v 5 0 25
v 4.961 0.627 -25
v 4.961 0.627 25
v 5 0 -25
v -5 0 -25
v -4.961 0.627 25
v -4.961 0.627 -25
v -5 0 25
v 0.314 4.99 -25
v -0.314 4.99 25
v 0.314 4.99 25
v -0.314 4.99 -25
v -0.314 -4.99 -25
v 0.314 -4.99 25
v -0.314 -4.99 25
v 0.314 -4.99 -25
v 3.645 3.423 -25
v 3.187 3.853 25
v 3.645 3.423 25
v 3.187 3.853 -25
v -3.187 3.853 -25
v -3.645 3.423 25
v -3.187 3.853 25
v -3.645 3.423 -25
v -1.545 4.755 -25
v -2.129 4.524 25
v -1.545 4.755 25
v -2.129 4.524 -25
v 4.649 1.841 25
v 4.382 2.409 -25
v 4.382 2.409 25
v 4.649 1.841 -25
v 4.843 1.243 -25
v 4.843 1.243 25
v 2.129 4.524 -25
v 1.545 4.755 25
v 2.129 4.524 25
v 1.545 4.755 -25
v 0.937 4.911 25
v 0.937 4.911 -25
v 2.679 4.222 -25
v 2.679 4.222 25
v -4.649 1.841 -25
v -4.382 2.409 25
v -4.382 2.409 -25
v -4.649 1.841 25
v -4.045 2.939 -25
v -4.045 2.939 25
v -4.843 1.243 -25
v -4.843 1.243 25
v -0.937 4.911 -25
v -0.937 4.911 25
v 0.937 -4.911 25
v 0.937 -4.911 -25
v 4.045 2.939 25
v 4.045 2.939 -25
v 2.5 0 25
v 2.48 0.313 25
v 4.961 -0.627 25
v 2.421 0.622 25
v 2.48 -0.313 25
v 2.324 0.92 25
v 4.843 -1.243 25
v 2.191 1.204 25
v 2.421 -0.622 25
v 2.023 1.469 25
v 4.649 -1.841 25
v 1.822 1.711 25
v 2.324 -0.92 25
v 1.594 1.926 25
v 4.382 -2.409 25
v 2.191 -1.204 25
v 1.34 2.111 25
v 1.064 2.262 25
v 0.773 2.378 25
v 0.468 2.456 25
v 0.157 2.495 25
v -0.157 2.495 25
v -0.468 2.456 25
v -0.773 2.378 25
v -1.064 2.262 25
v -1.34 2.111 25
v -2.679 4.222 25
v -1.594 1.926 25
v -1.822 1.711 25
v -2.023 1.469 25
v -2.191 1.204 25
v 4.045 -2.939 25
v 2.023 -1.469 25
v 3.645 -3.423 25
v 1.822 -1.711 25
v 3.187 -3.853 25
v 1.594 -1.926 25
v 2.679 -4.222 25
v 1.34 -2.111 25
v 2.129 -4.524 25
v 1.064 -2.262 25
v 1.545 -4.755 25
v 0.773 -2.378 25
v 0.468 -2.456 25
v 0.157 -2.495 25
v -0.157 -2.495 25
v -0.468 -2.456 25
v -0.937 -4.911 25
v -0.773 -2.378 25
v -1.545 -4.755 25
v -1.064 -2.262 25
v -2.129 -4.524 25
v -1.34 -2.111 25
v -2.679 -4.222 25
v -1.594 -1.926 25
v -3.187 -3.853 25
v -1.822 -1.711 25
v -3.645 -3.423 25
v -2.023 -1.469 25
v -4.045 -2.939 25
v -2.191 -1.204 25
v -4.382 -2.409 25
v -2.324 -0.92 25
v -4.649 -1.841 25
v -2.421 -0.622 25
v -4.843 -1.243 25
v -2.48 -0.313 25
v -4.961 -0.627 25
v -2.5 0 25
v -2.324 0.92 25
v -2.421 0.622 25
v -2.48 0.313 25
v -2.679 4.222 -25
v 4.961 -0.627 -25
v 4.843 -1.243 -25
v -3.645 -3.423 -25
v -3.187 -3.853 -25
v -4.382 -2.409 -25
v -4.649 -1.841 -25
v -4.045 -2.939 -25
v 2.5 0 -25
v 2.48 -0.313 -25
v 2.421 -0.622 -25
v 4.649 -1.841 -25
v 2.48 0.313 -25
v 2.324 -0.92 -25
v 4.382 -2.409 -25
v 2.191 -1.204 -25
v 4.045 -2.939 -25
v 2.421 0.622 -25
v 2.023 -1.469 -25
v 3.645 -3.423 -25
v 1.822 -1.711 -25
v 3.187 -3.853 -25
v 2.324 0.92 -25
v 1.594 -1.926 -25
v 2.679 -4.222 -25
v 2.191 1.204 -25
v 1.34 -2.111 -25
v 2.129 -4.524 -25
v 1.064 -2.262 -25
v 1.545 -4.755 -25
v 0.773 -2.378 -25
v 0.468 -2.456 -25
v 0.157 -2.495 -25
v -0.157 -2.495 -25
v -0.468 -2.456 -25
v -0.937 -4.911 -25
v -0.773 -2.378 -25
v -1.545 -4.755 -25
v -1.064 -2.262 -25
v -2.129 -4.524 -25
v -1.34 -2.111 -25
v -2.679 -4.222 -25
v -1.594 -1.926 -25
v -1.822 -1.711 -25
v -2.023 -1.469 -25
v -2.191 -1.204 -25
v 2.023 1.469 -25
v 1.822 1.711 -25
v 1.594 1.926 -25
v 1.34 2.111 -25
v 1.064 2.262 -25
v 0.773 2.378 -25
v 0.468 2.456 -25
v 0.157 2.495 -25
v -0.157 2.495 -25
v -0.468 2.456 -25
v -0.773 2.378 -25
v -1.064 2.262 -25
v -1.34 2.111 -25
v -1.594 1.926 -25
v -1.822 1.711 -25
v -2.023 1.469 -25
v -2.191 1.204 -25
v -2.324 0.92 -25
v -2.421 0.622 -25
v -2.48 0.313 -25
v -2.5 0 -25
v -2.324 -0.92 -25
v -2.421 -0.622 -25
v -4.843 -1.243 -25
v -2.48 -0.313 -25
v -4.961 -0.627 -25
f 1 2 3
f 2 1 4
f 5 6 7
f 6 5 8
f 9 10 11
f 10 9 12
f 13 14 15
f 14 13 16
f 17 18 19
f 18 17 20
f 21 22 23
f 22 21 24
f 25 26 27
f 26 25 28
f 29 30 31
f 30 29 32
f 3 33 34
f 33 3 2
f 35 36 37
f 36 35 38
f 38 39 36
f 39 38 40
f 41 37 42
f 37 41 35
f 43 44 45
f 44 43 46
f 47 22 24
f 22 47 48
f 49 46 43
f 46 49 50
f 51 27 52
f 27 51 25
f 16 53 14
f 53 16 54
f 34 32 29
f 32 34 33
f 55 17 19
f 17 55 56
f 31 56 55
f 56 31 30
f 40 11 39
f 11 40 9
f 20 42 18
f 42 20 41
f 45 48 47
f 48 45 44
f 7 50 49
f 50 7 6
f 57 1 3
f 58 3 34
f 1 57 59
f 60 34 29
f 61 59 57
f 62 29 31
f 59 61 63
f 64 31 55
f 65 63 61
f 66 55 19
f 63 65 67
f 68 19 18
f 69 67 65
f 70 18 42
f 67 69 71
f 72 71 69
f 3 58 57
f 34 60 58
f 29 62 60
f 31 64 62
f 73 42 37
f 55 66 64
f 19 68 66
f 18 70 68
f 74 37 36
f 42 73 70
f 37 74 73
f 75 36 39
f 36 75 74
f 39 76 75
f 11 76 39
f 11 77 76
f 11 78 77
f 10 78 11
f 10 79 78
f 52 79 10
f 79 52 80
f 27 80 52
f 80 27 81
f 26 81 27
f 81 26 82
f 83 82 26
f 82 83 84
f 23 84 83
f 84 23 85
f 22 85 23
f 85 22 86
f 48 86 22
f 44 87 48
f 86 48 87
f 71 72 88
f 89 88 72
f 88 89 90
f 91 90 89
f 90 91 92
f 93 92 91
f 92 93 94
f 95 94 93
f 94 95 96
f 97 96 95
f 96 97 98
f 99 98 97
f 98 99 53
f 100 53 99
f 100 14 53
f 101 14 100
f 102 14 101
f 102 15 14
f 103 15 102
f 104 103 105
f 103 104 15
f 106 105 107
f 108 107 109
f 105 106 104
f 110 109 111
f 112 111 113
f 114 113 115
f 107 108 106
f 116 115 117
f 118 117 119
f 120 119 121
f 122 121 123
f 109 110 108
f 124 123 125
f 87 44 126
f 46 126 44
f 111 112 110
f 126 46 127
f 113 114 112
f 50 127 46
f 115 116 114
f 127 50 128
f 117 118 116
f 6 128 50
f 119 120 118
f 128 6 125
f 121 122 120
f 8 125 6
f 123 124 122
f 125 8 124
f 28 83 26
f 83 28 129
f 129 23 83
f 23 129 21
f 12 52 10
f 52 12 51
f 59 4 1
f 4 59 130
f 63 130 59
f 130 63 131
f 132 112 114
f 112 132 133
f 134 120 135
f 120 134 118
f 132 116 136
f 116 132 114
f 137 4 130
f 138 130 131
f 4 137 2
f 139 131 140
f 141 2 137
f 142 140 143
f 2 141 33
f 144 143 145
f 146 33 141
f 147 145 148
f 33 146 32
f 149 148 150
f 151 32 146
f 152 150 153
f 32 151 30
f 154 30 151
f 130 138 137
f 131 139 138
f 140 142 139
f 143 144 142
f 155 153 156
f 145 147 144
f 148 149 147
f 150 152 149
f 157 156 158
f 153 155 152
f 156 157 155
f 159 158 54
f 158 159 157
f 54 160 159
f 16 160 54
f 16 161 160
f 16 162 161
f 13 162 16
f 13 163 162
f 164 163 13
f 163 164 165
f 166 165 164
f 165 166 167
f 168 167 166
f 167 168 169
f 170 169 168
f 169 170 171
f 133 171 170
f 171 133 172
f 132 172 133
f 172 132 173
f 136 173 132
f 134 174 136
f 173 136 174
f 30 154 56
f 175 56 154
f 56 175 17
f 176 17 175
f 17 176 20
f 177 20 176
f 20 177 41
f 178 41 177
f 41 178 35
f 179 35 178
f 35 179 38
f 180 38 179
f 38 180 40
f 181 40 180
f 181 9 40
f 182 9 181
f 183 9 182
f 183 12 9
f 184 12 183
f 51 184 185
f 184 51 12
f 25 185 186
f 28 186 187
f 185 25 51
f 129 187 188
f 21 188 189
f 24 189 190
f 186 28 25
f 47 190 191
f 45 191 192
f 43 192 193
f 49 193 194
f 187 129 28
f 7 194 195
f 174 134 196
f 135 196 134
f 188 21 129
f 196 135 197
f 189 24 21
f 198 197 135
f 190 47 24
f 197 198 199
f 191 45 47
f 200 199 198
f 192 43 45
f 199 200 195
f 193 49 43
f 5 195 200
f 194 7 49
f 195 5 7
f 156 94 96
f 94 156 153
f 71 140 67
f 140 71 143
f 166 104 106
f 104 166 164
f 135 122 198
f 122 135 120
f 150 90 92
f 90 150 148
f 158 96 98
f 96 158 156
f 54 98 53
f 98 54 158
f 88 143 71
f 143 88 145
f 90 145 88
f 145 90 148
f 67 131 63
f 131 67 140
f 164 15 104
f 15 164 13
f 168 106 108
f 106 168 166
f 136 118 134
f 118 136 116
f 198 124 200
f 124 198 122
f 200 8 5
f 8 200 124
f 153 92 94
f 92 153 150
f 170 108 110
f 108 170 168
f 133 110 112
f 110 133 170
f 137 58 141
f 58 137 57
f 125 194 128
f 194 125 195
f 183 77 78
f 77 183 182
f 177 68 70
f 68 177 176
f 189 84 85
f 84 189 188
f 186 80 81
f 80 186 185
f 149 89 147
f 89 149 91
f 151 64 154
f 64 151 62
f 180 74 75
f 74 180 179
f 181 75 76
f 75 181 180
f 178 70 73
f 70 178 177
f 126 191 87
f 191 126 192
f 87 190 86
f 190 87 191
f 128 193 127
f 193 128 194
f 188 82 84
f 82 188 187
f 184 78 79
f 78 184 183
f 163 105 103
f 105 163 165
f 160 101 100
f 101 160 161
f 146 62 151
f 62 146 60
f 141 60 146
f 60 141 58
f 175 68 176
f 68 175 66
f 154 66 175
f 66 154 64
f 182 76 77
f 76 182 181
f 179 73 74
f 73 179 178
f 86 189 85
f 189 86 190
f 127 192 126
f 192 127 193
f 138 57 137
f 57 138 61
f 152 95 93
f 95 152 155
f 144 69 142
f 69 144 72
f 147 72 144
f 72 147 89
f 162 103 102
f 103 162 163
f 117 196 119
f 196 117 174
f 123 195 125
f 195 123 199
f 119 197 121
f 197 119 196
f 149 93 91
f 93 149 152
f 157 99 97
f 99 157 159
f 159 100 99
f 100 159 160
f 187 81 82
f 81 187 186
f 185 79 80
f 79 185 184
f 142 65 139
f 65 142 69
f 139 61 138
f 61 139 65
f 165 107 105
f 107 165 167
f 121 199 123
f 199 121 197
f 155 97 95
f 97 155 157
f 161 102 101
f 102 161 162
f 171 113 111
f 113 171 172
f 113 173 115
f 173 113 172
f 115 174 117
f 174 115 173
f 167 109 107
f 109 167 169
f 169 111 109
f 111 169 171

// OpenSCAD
$fn = 50;


difference() {
	union() {
		translate(v = [0, 0, -25.0000000000]) {
			cylinder(h = 50, r = 5.0000000000);
		}
	}
	union() {
		translate(v = [0, 0, -100.0000000000]) {
			cylinder(h = 200, r = 2.5000000000);
		}
	}
}
